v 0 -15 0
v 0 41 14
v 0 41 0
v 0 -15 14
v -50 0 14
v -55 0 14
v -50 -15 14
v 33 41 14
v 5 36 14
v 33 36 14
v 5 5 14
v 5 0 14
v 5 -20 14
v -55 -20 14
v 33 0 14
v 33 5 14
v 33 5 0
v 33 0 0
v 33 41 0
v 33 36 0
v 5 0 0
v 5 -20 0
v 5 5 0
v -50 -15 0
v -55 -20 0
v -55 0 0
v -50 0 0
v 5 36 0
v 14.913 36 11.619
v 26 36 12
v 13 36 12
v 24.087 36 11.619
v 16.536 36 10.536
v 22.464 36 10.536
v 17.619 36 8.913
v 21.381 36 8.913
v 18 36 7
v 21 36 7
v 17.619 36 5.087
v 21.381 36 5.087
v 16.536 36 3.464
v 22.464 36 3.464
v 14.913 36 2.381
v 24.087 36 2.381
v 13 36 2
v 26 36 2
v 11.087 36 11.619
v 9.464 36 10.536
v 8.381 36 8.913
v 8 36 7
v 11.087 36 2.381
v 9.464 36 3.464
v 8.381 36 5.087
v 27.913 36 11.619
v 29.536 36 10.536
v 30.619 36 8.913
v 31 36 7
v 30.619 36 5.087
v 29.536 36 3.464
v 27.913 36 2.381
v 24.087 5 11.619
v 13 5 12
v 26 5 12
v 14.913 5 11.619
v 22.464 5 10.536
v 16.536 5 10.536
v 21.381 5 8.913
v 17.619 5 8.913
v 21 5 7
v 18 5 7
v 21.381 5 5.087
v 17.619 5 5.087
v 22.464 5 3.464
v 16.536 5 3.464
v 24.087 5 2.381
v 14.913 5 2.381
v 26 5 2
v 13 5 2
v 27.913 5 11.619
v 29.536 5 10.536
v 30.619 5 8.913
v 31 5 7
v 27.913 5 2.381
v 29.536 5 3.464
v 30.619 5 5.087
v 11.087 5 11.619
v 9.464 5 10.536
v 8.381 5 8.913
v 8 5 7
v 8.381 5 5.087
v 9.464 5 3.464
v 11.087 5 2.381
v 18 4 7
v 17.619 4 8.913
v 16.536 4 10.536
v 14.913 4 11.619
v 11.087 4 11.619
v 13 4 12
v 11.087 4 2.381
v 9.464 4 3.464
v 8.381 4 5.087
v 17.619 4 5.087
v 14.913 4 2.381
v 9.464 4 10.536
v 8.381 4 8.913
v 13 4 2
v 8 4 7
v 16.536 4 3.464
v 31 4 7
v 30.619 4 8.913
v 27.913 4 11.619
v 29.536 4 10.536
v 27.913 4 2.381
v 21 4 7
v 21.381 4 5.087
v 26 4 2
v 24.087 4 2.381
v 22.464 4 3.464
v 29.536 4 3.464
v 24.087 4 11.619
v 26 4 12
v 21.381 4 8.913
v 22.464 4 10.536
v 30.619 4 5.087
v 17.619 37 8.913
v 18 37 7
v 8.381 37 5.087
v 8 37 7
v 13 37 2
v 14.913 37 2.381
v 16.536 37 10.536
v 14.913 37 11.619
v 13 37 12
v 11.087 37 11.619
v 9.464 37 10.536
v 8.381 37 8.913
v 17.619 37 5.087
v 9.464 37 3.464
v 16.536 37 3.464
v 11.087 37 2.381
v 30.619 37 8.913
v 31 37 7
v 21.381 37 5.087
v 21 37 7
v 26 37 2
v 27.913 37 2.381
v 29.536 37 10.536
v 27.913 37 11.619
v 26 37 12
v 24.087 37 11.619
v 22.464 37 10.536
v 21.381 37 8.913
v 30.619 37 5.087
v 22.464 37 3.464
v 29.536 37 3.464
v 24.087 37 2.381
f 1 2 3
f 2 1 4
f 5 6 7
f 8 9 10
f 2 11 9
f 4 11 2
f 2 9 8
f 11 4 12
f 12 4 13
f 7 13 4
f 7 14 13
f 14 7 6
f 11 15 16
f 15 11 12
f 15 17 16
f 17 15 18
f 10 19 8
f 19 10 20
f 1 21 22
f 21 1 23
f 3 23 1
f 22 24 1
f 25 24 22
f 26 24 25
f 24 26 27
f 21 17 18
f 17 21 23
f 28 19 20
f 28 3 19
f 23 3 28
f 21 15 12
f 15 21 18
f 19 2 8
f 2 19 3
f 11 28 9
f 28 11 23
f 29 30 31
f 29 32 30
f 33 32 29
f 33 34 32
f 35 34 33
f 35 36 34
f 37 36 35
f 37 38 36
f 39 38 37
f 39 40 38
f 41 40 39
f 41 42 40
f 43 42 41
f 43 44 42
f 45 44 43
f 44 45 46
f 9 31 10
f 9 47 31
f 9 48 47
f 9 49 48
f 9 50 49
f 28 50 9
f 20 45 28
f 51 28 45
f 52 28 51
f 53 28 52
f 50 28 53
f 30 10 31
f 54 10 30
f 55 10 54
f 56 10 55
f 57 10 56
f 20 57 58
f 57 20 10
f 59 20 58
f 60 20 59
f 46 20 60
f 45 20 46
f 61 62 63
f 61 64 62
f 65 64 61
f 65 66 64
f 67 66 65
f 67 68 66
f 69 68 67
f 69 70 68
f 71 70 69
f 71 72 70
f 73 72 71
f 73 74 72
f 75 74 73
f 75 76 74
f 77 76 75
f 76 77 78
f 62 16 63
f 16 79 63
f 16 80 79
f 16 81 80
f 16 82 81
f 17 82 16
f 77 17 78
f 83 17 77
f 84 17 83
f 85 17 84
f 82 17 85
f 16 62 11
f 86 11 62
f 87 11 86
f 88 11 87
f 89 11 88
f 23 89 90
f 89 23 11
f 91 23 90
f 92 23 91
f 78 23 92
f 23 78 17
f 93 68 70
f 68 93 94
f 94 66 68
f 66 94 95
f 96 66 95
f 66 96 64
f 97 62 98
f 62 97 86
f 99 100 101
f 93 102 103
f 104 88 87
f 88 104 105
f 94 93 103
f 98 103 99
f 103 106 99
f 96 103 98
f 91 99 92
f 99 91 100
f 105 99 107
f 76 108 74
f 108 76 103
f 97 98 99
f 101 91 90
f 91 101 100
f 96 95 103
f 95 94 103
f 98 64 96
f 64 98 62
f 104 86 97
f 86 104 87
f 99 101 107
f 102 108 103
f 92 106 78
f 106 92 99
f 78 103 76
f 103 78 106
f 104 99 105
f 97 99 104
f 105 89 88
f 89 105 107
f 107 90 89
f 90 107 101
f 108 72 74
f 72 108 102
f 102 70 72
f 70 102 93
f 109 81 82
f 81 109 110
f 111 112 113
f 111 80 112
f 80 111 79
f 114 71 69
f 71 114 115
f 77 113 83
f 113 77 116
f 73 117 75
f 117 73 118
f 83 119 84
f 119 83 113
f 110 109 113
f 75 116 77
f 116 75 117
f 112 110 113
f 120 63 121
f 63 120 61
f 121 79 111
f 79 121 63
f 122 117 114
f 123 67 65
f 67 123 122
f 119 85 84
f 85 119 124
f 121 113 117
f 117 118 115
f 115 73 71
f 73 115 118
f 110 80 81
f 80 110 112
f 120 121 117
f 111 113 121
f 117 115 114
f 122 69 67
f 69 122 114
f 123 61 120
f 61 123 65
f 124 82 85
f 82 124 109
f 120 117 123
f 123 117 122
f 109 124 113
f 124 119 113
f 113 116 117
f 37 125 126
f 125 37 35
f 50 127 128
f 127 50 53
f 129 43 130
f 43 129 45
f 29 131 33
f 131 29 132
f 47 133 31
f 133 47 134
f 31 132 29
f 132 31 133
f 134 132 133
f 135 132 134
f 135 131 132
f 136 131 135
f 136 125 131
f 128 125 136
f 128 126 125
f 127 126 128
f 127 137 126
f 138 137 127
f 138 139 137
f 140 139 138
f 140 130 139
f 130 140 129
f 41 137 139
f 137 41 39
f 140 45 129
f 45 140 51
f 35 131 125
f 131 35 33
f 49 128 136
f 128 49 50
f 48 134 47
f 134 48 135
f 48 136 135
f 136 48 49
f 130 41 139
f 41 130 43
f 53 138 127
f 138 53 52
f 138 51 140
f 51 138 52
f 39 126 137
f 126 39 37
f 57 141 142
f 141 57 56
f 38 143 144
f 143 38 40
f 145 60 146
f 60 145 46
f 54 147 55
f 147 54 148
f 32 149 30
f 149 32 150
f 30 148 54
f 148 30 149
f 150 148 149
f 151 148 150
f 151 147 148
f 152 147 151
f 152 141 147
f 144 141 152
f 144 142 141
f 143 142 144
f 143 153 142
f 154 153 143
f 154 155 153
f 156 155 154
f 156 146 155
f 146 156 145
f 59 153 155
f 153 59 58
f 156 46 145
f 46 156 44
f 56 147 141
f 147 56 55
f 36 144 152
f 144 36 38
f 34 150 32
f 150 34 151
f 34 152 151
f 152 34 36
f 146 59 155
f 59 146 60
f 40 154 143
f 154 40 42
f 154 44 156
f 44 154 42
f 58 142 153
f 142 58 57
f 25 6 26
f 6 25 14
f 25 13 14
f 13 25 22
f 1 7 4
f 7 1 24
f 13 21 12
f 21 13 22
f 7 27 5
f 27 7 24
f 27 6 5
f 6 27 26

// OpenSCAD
thickness = 5;

union(){
    translate([-55,-20,0]){
        cube([55,thickness,14]);
    }
    translate([0,-20,0]){
        cube([thickness,20,14]);
    }
    translate([-55,-20,0]){
        cube([thickness,20,14]);
    }
    difference(){
        cube([33,41,14]);//outer cube
        translate([thickness,thickness,-1]){
            cube([100,31,45]);
        }
        //bottom
        divet([13,6.5,7]);
        divet([26,6.5,7]);
        //divet([15,6.5,30]);
        //divet([35,6.5,30]);
        
        //upper
        divet([13,34.5,7]);
        divet([26,34.5,7]);
        //divet([15,34.5,30]);
        //divet([35,34.5,30]);
    }

    /*translate([0,-40,0]){
        cube([5,50,40]);
    }*/
}

module divet(trans){
            translate(trans){
            rotate(90,[1,0,0]){
                cylinder(5,d=10,center=true);
            }
        }
}
